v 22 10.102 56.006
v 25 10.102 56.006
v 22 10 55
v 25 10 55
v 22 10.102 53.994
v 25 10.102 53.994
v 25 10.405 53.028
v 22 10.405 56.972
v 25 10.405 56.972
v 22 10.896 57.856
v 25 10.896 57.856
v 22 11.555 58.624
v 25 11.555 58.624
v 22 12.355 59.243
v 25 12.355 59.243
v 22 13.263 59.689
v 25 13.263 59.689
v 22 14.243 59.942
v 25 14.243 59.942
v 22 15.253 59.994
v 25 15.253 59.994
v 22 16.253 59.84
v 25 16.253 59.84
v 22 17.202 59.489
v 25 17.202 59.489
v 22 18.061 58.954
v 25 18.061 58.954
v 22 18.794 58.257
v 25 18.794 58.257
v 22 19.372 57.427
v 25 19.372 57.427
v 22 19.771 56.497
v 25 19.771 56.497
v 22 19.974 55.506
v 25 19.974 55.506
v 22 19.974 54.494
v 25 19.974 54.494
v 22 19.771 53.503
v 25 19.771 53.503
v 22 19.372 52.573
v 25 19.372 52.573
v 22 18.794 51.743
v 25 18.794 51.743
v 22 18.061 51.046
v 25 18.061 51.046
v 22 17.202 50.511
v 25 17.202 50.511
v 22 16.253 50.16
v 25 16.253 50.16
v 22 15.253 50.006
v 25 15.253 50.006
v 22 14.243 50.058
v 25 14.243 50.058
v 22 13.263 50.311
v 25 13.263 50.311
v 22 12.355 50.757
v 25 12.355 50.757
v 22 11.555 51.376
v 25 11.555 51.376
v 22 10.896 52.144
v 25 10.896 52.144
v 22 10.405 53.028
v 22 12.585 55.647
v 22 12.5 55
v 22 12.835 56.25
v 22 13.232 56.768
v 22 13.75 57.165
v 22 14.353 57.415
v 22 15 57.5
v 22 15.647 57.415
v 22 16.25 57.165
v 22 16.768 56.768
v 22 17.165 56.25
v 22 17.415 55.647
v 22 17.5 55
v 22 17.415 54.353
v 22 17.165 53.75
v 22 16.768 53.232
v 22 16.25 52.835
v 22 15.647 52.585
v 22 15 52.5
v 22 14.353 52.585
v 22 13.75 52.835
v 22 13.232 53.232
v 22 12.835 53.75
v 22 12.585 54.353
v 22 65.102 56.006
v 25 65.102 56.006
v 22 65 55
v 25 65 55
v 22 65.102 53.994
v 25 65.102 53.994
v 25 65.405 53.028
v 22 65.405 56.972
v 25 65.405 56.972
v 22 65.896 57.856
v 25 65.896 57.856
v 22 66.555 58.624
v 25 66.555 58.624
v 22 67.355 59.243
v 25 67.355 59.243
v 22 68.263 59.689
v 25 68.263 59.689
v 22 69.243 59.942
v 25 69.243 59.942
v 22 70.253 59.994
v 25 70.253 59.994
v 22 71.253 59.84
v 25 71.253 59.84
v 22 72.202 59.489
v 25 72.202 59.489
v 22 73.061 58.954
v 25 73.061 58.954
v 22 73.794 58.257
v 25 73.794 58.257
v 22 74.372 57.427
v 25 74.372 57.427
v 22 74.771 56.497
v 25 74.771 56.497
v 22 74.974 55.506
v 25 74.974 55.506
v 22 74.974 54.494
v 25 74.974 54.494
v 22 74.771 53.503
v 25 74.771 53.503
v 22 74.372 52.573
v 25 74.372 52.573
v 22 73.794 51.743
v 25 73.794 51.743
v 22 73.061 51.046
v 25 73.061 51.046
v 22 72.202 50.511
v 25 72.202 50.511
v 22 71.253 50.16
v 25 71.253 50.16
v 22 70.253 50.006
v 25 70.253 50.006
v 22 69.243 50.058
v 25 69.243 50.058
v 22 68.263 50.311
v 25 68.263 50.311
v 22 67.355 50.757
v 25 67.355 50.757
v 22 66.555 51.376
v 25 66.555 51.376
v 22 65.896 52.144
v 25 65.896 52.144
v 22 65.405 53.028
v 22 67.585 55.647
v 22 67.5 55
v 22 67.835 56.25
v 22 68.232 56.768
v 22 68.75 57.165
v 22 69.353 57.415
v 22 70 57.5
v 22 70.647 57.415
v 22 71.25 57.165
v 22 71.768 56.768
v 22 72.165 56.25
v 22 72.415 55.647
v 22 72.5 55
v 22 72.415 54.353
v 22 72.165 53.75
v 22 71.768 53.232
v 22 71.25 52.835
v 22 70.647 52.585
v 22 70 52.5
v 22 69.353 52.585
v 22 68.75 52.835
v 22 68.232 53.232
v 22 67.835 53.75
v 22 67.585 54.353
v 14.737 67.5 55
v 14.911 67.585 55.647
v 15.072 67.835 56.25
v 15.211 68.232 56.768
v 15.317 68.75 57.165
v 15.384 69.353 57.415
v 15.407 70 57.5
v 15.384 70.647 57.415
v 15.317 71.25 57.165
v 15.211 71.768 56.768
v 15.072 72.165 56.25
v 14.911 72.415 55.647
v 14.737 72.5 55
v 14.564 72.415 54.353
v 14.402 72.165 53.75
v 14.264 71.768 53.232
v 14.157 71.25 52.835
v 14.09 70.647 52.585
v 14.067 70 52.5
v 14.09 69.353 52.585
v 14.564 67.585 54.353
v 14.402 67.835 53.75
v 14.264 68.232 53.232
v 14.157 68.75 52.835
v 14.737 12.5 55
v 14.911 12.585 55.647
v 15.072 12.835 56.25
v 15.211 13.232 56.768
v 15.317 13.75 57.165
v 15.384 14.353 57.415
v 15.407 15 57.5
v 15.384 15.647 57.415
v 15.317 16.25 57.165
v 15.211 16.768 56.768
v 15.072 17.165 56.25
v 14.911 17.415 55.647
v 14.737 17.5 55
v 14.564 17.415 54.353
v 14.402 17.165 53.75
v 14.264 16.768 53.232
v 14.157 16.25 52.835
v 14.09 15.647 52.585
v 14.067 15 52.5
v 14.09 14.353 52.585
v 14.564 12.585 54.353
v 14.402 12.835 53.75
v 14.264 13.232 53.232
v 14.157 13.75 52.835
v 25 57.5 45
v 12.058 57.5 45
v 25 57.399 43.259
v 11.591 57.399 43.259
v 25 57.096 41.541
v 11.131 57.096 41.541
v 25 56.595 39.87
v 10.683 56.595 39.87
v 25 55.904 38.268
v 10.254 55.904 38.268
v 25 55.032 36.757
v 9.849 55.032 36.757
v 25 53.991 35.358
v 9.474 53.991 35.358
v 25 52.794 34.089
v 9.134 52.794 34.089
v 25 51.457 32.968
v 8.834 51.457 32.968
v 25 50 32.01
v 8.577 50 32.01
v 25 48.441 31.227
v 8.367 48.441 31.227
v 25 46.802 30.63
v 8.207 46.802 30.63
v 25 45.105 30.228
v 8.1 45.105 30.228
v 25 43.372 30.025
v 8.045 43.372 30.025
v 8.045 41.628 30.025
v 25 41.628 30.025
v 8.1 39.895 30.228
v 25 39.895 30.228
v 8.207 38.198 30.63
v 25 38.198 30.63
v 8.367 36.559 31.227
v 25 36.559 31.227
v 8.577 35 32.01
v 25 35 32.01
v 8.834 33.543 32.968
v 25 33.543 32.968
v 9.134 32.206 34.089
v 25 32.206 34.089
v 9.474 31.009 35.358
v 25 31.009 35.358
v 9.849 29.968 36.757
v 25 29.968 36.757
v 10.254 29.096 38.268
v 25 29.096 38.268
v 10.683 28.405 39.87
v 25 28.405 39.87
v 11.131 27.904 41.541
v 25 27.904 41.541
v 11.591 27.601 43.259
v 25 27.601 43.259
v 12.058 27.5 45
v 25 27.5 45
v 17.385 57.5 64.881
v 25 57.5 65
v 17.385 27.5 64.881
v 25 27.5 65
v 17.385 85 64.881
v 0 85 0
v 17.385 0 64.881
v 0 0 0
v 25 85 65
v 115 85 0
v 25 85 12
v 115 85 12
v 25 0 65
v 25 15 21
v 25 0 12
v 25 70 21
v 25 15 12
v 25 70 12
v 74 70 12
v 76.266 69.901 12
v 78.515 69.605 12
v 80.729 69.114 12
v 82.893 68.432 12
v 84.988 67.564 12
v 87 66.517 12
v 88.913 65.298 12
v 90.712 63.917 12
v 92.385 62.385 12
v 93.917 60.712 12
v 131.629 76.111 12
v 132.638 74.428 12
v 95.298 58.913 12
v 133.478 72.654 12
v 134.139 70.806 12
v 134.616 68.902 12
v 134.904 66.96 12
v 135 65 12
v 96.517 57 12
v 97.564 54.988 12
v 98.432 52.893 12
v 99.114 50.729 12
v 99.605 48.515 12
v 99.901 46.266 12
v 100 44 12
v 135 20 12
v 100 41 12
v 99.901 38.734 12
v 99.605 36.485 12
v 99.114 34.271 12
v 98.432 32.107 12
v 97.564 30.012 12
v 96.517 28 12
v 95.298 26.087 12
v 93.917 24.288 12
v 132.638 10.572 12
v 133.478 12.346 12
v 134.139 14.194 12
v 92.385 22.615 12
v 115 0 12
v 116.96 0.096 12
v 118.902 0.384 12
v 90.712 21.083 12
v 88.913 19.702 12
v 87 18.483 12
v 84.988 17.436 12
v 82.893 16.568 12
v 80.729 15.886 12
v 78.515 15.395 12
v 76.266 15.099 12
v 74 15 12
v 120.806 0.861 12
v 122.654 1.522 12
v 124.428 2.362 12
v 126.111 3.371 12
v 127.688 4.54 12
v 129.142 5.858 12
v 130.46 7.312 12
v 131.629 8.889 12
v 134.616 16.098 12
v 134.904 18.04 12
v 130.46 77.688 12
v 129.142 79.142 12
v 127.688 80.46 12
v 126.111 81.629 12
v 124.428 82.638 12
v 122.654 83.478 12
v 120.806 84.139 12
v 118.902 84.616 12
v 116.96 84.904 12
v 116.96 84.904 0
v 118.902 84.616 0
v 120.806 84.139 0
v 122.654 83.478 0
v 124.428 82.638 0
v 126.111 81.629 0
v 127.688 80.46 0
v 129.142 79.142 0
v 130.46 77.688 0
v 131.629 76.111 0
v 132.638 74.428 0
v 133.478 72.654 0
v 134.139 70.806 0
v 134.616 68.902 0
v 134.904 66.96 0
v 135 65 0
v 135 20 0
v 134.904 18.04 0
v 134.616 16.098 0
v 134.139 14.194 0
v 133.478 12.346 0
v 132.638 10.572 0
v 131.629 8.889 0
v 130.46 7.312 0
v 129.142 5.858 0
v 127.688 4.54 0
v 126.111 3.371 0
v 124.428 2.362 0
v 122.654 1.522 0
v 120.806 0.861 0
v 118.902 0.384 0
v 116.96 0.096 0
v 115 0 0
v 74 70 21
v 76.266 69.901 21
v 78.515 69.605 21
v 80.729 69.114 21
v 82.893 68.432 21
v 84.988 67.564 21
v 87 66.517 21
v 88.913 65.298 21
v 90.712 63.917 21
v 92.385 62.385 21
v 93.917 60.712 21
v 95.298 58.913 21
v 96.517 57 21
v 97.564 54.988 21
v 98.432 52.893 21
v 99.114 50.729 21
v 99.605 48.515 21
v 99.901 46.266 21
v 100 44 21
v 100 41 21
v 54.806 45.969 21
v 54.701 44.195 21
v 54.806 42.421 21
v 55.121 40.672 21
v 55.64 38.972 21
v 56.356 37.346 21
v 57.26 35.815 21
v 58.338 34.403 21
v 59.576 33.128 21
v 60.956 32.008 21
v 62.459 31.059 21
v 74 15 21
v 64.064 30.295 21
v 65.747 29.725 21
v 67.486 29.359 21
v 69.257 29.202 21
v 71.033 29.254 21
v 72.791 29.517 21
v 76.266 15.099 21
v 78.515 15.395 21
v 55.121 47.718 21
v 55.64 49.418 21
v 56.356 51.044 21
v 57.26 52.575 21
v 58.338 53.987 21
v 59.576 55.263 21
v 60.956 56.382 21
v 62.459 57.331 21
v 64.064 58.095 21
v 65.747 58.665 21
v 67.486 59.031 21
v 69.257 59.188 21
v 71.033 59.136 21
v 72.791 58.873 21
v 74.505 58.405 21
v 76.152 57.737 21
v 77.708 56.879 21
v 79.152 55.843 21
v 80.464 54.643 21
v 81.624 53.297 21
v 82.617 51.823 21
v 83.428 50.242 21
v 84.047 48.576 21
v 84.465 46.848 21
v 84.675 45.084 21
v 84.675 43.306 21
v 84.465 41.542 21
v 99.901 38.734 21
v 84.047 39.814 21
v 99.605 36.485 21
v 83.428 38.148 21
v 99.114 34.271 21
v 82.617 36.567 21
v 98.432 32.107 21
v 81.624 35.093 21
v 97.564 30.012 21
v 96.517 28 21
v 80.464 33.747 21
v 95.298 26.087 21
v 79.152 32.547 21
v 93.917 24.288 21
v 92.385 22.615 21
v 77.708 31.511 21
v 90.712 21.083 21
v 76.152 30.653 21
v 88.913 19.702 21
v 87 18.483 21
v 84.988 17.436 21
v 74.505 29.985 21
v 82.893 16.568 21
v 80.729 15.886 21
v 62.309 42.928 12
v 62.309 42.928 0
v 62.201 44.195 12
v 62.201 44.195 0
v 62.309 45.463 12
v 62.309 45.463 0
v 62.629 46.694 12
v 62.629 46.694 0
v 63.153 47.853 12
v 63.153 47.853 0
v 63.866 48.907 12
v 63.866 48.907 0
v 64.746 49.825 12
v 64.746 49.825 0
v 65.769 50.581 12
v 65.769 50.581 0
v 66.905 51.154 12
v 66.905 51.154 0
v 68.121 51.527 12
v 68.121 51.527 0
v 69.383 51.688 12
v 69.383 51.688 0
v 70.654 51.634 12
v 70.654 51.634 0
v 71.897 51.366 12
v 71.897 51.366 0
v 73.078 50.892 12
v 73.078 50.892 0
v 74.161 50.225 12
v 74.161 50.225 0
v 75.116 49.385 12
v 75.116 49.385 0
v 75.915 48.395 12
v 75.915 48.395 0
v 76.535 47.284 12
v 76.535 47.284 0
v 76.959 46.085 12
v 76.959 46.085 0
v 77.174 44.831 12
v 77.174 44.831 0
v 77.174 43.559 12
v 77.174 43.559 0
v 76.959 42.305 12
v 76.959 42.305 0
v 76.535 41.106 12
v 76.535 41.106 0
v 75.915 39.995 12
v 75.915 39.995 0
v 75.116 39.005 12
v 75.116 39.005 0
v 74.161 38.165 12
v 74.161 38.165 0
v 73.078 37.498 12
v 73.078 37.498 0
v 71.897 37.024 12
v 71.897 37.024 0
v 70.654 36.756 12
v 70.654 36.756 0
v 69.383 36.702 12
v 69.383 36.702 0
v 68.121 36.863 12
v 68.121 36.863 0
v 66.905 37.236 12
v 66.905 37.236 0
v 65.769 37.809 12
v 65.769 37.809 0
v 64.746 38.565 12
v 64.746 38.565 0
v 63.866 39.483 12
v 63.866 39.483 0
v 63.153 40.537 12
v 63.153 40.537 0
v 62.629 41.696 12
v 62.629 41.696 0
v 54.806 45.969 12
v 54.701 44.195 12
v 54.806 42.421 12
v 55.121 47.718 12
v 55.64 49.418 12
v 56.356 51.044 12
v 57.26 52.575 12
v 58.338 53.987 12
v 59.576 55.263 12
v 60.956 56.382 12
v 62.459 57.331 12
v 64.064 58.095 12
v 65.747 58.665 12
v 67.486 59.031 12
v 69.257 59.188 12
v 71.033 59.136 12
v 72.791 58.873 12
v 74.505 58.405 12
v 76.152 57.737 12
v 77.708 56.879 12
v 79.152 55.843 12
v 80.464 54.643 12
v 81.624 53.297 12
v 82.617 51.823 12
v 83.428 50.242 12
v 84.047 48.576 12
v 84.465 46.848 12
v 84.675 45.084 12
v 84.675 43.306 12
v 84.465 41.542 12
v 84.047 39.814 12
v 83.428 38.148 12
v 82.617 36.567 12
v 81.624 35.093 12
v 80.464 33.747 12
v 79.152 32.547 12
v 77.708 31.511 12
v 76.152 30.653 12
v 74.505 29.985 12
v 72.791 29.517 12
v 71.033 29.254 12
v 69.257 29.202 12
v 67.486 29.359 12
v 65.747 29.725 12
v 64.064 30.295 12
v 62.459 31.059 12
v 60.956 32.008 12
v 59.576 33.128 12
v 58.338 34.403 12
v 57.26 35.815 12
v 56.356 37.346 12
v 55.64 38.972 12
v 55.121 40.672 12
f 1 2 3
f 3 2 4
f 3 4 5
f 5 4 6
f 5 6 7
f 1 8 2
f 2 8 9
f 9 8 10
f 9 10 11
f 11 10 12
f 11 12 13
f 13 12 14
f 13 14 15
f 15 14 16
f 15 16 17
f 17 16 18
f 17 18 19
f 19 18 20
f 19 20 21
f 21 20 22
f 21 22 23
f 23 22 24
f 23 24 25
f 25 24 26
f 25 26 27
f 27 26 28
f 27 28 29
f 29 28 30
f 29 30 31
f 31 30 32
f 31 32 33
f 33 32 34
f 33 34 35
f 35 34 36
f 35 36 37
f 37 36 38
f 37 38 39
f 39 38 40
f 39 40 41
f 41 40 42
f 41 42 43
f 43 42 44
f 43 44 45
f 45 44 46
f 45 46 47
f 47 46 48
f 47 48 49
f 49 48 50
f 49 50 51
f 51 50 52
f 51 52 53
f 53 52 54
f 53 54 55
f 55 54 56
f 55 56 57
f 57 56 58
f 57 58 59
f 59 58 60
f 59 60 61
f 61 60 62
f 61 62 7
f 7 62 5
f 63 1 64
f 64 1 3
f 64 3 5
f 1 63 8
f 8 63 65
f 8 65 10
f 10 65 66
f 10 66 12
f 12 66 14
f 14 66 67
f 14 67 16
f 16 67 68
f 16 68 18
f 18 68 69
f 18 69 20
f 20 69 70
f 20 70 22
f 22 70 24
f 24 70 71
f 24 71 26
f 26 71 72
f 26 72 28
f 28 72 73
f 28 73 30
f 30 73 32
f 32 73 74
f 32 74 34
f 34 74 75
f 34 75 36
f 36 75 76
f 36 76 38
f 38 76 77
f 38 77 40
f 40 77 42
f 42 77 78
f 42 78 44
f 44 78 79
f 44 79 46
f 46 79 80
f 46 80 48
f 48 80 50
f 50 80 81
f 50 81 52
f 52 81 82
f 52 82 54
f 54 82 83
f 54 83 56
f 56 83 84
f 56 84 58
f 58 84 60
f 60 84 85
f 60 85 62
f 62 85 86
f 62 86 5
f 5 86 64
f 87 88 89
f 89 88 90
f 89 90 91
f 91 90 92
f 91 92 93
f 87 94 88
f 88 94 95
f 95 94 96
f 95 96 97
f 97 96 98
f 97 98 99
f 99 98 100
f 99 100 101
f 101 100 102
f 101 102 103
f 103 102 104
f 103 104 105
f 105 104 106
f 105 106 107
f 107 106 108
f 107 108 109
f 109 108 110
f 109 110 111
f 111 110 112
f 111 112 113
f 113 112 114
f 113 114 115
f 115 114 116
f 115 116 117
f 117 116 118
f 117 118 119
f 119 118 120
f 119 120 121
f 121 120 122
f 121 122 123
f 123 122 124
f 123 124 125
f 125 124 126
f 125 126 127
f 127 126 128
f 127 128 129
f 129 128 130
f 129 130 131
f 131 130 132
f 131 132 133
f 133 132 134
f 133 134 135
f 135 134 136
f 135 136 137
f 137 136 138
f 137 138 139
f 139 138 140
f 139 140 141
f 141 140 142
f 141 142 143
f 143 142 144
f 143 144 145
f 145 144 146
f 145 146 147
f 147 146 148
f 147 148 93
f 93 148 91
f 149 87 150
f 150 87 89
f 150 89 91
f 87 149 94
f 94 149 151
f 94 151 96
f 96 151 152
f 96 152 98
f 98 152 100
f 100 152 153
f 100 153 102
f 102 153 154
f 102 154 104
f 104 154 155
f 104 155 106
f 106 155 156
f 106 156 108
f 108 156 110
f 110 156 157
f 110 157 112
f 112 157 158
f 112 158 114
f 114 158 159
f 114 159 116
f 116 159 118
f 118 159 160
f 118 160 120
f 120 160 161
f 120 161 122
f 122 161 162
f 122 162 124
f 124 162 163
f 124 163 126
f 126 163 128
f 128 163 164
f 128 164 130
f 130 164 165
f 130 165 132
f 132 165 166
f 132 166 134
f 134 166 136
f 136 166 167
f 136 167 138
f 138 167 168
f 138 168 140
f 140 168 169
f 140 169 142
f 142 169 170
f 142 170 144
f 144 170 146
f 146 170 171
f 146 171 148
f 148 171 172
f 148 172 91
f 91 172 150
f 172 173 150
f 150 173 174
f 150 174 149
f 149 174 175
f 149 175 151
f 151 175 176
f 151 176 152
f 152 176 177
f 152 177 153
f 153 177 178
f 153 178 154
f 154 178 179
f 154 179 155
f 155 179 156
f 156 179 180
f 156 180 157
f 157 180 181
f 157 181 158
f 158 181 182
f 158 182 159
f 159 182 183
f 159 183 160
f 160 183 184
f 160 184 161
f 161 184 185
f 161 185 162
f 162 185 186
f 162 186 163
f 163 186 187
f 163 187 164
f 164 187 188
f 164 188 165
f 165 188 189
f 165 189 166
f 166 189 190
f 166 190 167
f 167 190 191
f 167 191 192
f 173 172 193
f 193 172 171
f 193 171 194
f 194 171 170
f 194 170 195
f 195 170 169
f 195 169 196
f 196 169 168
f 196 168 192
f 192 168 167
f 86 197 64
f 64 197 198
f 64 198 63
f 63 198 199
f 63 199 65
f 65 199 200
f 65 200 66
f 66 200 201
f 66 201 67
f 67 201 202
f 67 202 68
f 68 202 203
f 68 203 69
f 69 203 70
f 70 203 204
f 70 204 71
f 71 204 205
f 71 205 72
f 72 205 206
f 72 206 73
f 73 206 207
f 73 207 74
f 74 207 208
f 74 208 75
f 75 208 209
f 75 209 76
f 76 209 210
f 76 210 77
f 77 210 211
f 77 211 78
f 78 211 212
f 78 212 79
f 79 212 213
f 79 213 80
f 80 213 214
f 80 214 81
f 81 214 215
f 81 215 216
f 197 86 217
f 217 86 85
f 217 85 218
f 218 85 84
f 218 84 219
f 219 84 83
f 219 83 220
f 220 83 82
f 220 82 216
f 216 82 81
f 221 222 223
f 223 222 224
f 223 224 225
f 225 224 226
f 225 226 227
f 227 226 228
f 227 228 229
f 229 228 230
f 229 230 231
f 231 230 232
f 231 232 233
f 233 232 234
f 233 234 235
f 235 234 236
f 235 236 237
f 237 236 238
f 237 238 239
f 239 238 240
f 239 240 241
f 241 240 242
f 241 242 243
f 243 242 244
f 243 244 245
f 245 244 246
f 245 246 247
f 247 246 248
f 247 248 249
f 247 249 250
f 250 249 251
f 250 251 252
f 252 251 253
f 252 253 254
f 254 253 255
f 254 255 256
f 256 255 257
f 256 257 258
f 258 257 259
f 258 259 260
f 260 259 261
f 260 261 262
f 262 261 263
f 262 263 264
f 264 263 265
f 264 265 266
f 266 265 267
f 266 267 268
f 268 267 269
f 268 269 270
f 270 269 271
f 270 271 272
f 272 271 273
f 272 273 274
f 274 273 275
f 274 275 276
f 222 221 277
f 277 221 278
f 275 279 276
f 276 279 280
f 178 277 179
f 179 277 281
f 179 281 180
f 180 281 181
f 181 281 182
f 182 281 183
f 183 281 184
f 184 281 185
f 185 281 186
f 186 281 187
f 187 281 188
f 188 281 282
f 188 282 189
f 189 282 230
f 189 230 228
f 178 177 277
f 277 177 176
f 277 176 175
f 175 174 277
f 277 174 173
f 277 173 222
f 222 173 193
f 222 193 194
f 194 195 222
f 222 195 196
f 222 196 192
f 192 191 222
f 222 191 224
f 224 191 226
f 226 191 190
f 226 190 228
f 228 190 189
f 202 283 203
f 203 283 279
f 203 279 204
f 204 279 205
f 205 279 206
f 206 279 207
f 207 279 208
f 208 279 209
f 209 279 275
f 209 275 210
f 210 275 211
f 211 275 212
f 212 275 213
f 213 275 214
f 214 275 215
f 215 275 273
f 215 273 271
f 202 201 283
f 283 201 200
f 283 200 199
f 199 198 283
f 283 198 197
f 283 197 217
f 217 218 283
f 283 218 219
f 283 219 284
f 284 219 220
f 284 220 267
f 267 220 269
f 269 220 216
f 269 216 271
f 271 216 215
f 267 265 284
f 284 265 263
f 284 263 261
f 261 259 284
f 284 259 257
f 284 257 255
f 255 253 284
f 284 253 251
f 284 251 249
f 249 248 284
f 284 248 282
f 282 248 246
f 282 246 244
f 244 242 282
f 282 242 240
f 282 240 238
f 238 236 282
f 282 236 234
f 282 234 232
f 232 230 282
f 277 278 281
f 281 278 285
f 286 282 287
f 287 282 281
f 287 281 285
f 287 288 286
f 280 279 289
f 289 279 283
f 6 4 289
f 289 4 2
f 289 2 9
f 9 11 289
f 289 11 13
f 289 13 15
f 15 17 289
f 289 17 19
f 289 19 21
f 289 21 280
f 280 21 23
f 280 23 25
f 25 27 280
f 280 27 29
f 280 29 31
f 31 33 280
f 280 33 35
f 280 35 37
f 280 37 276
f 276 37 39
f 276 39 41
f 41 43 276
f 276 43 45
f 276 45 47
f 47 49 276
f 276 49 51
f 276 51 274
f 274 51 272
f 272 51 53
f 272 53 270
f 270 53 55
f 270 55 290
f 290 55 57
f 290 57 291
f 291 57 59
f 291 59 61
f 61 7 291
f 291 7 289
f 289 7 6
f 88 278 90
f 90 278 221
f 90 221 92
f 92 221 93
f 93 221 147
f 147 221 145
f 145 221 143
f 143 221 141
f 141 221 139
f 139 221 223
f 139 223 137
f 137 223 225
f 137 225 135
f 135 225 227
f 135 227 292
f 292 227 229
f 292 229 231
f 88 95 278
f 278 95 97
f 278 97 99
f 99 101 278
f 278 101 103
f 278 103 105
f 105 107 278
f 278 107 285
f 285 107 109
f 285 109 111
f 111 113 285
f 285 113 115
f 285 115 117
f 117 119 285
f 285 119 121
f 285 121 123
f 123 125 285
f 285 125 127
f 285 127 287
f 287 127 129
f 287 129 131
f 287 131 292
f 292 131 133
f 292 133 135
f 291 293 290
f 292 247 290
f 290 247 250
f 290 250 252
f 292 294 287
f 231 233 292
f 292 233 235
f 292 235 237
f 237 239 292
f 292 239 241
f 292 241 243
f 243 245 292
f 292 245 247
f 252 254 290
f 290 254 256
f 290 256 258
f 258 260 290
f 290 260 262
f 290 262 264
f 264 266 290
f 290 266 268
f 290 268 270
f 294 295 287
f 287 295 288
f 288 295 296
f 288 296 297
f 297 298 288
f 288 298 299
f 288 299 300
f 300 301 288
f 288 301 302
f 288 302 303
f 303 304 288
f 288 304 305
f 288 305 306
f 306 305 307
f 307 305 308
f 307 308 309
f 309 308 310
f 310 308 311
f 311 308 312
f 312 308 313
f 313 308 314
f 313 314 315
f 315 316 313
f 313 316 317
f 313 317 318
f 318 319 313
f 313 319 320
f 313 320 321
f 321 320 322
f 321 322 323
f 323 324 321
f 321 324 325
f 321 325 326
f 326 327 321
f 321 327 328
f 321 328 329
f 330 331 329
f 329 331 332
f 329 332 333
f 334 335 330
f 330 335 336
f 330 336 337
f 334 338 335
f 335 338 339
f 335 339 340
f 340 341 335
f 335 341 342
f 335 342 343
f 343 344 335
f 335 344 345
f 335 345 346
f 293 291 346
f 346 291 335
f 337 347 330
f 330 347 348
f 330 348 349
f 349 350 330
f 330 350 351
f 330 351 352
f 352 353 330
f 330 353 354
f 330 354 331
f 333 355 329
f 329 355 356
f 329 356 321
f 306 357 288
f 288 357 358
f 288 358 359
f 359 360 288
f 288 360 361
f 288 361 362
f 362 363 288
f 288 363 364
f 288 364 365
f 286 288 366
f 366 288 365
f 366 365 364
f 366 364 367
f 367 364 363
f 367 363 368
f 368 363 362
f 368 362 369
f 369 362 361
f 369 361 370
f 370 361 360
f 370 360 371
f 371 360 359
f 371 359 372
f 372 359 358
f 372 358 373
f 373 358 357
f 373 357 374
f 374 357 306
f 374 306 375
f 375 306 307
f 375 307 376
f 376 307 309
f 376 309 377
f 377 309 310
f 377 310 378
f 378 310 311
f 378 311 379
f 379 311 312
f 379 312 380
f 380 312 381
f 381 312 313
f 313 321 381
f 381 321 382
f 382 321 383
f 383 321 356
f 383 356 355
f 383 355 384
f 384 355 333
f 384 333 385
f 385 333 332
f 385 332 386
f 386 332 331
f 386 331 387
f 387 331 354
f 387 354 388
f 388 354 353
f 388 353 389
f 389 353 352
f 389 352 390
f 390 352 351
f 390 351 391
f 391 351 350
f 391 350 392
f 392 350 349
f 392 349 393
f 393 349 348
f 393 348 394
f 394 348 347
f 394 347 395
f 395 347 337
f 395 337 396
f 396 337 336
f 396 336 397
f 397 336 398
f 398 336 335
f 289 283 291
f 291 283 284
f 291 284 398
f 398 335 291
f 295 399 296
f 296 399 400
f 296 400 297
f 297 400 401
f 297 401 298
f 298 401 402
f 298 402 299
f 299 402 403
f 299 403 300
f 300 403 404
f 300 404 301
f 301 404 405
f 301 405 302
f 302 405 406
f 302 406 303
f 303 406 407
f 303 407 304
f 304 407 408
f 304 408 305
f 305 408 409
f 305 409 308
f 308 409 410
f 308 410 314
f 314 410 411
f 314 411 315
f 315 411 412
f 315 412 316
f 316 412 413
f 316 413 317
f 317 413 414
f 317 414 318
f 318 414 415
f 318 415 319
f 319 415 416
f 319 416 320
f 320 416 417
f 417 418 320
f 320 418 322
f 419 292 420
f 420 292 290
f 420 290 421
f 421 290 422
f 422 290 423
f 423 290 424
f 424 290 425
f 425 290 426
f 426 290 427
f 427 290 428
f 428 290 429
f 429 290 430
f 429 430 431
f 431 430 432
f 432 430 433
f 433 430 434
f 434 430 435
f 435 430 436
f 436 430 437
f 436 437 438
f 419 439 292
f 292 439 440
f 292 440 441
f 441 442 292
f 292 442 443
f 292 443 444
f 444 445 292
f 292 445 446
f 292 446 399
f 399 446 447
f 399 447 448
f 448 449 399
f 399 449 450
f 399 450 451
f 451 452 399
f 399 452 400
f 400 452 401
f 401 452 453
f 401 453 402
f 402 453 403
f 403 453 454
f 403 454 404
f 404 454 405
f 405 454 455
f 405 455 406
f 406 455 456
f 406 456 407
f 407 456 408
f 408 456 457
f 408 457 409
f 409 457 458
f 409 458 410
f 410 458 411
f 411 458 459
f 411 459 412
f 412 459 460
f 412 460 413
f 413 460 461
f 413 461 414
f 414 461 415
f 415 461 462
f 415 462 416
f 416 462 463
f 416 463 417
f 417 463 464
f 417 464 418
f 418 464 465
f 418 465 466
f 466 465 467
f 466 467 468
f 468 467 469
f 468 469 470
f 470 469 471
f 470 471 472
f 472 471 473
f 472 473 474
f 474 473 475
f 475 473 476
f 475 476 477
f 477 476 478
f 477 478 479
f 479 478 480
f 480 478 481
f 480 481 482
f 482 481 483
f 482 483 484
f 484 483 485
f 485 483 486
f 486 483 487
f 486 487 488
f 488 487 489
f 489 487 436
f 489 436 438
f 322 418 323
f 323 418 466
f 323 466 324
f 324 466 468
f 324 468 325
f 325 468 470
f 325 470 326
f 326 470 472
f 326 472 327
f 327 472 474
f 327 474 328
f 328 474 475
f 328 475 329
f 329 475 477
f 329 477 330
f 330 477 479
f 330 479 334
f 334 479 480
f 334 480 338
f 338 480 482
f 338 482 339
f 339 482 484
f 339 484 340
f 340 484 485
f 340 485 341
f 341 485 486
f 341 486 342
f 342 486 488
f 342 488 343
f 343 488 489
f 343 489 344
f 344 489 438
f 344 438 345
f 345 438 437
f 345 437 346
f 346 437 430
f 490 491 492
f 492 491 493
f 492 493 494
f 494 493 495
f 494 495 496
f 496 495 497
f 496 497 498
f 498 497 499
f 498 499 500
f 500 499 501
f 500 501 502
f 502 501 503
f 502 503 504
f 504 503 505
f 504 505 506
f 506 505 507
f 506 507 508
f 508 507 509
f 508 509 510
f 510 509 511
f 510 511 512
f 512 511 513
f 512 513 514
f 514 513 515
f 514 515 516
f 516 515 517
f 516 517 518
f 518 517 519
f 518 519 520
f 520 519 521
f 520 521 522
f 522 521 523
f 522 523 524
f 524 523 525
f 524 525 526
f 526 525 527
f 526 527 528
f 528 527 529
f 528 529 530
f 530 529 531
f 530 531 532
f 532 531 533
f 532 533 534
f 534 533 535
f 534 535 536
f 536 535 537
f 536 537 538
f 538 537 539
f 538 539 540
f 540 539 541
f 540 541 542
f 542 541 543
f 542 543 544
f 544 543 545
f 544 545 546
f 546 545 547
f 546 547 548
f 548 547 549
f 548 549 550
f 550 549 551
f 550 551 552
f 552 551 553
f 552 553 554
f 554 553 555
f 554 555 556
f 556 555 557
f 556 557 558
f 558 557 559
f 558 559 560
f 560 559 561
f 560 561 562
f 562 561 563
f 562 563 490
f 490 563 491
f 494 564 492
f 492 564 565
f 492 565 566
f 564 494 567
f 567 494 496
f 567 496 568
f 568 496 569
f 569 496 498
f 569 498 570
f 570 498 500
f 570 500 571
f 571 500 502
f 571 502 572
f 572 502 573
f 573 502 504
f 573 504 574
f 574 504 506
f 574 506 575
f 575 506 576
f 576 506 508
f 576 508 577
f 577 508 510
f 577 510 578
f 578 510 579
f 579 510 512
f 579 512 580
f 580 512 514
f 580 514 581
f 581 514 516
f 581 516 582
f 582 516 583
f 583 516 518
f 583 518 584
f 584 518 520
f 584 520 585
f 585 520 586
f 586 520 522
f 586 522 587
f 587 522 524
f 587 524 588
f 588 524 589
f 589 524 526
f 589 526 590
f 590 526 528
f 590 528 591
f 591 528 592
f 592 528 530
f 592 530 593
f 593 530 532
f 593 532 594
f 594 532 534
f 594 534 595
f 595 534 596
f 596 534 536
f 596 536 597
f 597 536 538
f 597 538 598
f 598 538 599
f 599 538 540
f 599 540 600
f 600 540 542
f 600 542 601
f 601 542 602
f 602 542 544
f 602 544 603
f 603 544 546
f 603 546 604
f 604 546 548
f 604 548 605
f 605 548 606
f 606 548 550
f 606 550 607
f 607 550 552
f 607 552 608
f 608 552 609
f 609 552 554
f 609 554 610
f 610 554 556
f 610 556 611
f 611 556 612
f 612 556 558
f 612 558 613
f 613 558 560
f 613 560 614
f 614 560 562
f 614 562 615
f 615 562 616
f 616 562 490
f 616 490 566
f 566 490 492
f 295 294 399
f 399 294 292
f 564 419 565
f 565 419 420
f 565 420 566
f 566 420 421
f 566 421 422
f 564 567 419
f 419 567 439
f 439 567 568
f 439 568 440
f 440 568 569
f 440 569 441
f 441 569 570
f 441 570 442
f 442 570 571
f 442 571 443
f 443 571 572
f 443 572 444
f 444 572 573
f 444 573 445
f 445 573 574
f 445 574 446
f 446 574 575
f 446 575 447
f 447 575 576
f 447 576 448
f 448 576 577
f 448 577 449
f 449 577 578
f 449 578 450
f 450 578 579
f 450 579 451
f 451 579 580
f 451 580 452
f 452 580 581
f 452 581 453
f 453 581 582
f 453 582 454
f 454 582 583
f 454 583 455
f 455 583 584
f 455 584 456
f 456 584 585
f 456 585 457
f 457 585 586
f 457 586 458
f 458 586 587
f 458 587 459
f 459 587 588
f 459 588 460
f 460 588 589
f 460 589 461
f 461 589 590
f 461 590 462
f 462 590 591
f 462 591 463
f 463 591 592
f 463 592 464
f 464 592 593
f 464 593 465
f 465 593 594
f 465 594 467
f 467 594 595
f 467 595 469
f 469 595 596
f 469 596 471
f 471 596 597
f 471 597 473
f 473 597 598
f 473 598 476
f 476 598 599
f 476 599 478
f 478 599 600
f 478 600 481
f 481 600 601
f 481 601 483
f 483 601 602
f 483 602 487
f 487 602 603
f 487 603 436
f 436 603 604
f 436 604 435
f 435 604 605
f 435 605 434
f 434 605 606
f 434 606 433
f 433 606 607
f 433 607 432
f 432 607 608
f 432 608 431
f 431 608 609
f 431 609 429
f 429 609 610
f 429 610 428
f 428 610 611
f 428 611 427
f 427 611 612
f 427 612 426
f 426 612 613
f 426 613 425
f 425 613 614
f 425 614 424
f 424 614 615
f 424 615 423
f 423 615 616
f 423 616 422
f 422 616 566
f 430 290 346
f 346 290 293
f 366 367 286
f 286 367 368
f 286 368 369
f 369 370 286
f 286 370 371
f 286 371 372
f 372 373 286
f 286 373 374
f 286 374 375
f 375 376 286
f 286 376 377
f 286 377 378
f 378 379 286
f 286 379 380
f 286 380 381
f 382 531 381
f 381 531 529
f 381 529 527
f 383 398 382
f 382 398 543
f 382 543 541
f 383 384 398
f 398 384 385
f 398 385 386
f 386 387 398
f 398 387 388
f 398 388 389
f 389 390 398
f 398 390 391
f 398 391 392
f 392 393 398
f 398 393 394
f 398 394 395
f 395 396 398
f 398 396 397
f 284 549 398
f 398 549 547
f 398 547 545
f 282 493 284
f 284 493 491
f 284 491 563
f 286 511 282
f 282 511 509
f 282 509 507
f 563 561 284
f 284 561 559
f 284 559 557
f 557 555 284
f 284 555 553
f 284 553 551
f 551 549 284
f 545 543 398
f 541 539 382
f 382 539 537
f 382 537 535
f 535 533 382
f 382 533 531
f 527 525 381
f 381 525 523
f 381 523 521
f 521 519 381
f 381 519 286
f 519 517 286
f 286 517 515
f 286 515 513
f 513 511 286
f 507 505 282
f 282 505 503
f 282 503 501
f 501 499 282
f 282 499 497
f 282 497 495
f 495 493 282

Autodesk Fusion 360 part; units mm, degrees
sketch "Baza" plane through (0, 0, 0) normal (0, 0, 1) x (1, 0, 0)
  line L0 (0, 0) -> (0, 85)
  line L1 (0, 85) -> (135, 85)
  line L2 (135, 85) -> (135, 0)
  line L3 (135, 0) -> (0, 0)
  line L4 (0, 0) -> (25, 0) construction
  line L5 (25, 0) -> (25, 85)
  line L6 (25, 85) -> (25, 70) construction
  line L7 (25, 0) -> (25, 15) construction
  line L8 (69.701, 85) -> (69.701, 0) construction
  line L9 (135, 85) -> (69.701, 44.195) construction
  circle A0 centre (69.701, 44.195) radius 7.5
  circle A1 centre (69.701, 44.195) radius 15
  line L10 (25, 70) -> (100, 70)
  line L11 (100, 70) -> (100, 15)
  line L12 (100, 15) -> (25, 15)
  line L13 (25, 15) -> (25, 70)
  dimension "d1" = 85
  dimension "d2" = 135
  dimension "d3" = 25
  dimension "d4" = 15
  dimension "d5" = 15
  dimension "d6" = 77
  dimension "d7" = 15
  dimension "d8" = 30
  dimension "d9" = 55
  dimension "d10" = 44.701
  dimension "d11" = 35
extrude "Extrude1" add sketch "Baza" along normal blind 12 contours L0 L1 L3 L5 L13 | L1 L2 L3 L5 L10 L11 L12 | L5 L10 L11 L12 L13 | A0 | A1 makes body 1
extrude "Extrude2" add sketch "Baza" along normal blind 21 separate body contours L5 L10 L11 L12 L13 makes body 2
combine "Combine1" operation add target body 2 tool bodies 1
extrude "Extrude3" cut sketch "Baza" along normal blind 50 contours A0 bodies 2
fillet "Fillet1" radius 26 2 edges at (100, 15, 16.5) (100, 70, 16.5) on bodies 2
fillet "Fillet2" radius 20 2 edges at (135, 0, 6) (135, 85, 6) on bodies 2
sketch "Margine" plane through (0, 0, 0) normal (0, -1, 0) x (1, 0, 0)
  line L0 (115, 0) -> (115, 12)
  line L1 (115, 12) -> (0, 12)
  line L2 (0, 12) -> (0, 0)
  line L3 (0, 0) -> (115, 0)
  line L4 (0, 0) -> (25, 0) construction
  line L5 (25, 0) -> (25, 65)
  line L6 (0, 0) -> (17.3848, 64.881)
  line L7 (0, 0) -> (67.1698, 0) construction
  line L8 (17.3848, 64.881) -> (25, 65)
  line L9 (3.2154, 12) -> (25, 12)
  line L10 (3.2154, 12) -> (0, 12)
  line L11 (0, 0) -> (0, 12)
  dimension "d22" = 25
  dimension "d23" = 65
  dimension "d24" = 75
extrude "Extrude4" add sketch "Margine" against normal blind 85 contours L1 L5 L6 L8 L9 bodies 2
extrude "Extrude5" cut sketch "Margine" against normal blind 85 contours L1 L2 L6 L10 L11 bodies 2
sketch "Fata" plane through (25, 0, 0) normal (1, 0, 0) x (0, 1, 0)
  line L0 (70, 21) -> (70, 12)
  line L1 (70, 12) -> (85, 12)
  line L2 (85, 12) -> (85, 65)
  line L3 (85, 65) -> (0, 65)
  line L4 (0, 65) -> (0, 12)
  line L5 (0, 12) -> (15, 12)
  line L6 (15, 12) -> (15, 21)
  line L7 (15, 21) -> (70, 21)
  line L8 (0, 65) -> (15, 65) construction
  line L9 (85, 65) -> (70, 65) construction
  line L10 (15, 65) -> (15, 55) construction
  line L11 (70, 65) -> (70, 55) construction
  circle A0 centre (15, 55) radius 2.5
  circle A1 centre (70, 55) radius 2.5
  circle A2 centre (15, 55) radius 5
  circle A3 centre (70, 55) radius 5
  line L12 (0, 65) -> (0, 45) construction
  line L13 (0, 45) -> (85, 45) construction
  line L14 (27.5, 45) -> (27.5, 65)
  line L15 (57.5, 45) -> (57.5, 65)
  arc A4 (27.5, 45) -> (57.5, 45) centre (42.5, 45) ccw
  dimension "d29" = 15
  dimension "d30" = 15
  dimension "d31" = 10
  dimension "d32" = 10
  dimension "d33" = 5
  dimension "d34" = 5
  dimension "d35" = 10
  dimension "d36" = 10
  dimension "d37" = 20
  dimension "d40" = 30
extrude "Extrude6" cut sketch "Fata" against normal blind 20 contours L3 L14 L15 A4 bodies 2
extrude "Extrude7" cut sketch "Fata" against normal blind 15 contours A0 | A1 bodies 2
extrude "Extrude8" cut sketch "Fata" against normal blind 3 contours A2 | A3 bodies 2
